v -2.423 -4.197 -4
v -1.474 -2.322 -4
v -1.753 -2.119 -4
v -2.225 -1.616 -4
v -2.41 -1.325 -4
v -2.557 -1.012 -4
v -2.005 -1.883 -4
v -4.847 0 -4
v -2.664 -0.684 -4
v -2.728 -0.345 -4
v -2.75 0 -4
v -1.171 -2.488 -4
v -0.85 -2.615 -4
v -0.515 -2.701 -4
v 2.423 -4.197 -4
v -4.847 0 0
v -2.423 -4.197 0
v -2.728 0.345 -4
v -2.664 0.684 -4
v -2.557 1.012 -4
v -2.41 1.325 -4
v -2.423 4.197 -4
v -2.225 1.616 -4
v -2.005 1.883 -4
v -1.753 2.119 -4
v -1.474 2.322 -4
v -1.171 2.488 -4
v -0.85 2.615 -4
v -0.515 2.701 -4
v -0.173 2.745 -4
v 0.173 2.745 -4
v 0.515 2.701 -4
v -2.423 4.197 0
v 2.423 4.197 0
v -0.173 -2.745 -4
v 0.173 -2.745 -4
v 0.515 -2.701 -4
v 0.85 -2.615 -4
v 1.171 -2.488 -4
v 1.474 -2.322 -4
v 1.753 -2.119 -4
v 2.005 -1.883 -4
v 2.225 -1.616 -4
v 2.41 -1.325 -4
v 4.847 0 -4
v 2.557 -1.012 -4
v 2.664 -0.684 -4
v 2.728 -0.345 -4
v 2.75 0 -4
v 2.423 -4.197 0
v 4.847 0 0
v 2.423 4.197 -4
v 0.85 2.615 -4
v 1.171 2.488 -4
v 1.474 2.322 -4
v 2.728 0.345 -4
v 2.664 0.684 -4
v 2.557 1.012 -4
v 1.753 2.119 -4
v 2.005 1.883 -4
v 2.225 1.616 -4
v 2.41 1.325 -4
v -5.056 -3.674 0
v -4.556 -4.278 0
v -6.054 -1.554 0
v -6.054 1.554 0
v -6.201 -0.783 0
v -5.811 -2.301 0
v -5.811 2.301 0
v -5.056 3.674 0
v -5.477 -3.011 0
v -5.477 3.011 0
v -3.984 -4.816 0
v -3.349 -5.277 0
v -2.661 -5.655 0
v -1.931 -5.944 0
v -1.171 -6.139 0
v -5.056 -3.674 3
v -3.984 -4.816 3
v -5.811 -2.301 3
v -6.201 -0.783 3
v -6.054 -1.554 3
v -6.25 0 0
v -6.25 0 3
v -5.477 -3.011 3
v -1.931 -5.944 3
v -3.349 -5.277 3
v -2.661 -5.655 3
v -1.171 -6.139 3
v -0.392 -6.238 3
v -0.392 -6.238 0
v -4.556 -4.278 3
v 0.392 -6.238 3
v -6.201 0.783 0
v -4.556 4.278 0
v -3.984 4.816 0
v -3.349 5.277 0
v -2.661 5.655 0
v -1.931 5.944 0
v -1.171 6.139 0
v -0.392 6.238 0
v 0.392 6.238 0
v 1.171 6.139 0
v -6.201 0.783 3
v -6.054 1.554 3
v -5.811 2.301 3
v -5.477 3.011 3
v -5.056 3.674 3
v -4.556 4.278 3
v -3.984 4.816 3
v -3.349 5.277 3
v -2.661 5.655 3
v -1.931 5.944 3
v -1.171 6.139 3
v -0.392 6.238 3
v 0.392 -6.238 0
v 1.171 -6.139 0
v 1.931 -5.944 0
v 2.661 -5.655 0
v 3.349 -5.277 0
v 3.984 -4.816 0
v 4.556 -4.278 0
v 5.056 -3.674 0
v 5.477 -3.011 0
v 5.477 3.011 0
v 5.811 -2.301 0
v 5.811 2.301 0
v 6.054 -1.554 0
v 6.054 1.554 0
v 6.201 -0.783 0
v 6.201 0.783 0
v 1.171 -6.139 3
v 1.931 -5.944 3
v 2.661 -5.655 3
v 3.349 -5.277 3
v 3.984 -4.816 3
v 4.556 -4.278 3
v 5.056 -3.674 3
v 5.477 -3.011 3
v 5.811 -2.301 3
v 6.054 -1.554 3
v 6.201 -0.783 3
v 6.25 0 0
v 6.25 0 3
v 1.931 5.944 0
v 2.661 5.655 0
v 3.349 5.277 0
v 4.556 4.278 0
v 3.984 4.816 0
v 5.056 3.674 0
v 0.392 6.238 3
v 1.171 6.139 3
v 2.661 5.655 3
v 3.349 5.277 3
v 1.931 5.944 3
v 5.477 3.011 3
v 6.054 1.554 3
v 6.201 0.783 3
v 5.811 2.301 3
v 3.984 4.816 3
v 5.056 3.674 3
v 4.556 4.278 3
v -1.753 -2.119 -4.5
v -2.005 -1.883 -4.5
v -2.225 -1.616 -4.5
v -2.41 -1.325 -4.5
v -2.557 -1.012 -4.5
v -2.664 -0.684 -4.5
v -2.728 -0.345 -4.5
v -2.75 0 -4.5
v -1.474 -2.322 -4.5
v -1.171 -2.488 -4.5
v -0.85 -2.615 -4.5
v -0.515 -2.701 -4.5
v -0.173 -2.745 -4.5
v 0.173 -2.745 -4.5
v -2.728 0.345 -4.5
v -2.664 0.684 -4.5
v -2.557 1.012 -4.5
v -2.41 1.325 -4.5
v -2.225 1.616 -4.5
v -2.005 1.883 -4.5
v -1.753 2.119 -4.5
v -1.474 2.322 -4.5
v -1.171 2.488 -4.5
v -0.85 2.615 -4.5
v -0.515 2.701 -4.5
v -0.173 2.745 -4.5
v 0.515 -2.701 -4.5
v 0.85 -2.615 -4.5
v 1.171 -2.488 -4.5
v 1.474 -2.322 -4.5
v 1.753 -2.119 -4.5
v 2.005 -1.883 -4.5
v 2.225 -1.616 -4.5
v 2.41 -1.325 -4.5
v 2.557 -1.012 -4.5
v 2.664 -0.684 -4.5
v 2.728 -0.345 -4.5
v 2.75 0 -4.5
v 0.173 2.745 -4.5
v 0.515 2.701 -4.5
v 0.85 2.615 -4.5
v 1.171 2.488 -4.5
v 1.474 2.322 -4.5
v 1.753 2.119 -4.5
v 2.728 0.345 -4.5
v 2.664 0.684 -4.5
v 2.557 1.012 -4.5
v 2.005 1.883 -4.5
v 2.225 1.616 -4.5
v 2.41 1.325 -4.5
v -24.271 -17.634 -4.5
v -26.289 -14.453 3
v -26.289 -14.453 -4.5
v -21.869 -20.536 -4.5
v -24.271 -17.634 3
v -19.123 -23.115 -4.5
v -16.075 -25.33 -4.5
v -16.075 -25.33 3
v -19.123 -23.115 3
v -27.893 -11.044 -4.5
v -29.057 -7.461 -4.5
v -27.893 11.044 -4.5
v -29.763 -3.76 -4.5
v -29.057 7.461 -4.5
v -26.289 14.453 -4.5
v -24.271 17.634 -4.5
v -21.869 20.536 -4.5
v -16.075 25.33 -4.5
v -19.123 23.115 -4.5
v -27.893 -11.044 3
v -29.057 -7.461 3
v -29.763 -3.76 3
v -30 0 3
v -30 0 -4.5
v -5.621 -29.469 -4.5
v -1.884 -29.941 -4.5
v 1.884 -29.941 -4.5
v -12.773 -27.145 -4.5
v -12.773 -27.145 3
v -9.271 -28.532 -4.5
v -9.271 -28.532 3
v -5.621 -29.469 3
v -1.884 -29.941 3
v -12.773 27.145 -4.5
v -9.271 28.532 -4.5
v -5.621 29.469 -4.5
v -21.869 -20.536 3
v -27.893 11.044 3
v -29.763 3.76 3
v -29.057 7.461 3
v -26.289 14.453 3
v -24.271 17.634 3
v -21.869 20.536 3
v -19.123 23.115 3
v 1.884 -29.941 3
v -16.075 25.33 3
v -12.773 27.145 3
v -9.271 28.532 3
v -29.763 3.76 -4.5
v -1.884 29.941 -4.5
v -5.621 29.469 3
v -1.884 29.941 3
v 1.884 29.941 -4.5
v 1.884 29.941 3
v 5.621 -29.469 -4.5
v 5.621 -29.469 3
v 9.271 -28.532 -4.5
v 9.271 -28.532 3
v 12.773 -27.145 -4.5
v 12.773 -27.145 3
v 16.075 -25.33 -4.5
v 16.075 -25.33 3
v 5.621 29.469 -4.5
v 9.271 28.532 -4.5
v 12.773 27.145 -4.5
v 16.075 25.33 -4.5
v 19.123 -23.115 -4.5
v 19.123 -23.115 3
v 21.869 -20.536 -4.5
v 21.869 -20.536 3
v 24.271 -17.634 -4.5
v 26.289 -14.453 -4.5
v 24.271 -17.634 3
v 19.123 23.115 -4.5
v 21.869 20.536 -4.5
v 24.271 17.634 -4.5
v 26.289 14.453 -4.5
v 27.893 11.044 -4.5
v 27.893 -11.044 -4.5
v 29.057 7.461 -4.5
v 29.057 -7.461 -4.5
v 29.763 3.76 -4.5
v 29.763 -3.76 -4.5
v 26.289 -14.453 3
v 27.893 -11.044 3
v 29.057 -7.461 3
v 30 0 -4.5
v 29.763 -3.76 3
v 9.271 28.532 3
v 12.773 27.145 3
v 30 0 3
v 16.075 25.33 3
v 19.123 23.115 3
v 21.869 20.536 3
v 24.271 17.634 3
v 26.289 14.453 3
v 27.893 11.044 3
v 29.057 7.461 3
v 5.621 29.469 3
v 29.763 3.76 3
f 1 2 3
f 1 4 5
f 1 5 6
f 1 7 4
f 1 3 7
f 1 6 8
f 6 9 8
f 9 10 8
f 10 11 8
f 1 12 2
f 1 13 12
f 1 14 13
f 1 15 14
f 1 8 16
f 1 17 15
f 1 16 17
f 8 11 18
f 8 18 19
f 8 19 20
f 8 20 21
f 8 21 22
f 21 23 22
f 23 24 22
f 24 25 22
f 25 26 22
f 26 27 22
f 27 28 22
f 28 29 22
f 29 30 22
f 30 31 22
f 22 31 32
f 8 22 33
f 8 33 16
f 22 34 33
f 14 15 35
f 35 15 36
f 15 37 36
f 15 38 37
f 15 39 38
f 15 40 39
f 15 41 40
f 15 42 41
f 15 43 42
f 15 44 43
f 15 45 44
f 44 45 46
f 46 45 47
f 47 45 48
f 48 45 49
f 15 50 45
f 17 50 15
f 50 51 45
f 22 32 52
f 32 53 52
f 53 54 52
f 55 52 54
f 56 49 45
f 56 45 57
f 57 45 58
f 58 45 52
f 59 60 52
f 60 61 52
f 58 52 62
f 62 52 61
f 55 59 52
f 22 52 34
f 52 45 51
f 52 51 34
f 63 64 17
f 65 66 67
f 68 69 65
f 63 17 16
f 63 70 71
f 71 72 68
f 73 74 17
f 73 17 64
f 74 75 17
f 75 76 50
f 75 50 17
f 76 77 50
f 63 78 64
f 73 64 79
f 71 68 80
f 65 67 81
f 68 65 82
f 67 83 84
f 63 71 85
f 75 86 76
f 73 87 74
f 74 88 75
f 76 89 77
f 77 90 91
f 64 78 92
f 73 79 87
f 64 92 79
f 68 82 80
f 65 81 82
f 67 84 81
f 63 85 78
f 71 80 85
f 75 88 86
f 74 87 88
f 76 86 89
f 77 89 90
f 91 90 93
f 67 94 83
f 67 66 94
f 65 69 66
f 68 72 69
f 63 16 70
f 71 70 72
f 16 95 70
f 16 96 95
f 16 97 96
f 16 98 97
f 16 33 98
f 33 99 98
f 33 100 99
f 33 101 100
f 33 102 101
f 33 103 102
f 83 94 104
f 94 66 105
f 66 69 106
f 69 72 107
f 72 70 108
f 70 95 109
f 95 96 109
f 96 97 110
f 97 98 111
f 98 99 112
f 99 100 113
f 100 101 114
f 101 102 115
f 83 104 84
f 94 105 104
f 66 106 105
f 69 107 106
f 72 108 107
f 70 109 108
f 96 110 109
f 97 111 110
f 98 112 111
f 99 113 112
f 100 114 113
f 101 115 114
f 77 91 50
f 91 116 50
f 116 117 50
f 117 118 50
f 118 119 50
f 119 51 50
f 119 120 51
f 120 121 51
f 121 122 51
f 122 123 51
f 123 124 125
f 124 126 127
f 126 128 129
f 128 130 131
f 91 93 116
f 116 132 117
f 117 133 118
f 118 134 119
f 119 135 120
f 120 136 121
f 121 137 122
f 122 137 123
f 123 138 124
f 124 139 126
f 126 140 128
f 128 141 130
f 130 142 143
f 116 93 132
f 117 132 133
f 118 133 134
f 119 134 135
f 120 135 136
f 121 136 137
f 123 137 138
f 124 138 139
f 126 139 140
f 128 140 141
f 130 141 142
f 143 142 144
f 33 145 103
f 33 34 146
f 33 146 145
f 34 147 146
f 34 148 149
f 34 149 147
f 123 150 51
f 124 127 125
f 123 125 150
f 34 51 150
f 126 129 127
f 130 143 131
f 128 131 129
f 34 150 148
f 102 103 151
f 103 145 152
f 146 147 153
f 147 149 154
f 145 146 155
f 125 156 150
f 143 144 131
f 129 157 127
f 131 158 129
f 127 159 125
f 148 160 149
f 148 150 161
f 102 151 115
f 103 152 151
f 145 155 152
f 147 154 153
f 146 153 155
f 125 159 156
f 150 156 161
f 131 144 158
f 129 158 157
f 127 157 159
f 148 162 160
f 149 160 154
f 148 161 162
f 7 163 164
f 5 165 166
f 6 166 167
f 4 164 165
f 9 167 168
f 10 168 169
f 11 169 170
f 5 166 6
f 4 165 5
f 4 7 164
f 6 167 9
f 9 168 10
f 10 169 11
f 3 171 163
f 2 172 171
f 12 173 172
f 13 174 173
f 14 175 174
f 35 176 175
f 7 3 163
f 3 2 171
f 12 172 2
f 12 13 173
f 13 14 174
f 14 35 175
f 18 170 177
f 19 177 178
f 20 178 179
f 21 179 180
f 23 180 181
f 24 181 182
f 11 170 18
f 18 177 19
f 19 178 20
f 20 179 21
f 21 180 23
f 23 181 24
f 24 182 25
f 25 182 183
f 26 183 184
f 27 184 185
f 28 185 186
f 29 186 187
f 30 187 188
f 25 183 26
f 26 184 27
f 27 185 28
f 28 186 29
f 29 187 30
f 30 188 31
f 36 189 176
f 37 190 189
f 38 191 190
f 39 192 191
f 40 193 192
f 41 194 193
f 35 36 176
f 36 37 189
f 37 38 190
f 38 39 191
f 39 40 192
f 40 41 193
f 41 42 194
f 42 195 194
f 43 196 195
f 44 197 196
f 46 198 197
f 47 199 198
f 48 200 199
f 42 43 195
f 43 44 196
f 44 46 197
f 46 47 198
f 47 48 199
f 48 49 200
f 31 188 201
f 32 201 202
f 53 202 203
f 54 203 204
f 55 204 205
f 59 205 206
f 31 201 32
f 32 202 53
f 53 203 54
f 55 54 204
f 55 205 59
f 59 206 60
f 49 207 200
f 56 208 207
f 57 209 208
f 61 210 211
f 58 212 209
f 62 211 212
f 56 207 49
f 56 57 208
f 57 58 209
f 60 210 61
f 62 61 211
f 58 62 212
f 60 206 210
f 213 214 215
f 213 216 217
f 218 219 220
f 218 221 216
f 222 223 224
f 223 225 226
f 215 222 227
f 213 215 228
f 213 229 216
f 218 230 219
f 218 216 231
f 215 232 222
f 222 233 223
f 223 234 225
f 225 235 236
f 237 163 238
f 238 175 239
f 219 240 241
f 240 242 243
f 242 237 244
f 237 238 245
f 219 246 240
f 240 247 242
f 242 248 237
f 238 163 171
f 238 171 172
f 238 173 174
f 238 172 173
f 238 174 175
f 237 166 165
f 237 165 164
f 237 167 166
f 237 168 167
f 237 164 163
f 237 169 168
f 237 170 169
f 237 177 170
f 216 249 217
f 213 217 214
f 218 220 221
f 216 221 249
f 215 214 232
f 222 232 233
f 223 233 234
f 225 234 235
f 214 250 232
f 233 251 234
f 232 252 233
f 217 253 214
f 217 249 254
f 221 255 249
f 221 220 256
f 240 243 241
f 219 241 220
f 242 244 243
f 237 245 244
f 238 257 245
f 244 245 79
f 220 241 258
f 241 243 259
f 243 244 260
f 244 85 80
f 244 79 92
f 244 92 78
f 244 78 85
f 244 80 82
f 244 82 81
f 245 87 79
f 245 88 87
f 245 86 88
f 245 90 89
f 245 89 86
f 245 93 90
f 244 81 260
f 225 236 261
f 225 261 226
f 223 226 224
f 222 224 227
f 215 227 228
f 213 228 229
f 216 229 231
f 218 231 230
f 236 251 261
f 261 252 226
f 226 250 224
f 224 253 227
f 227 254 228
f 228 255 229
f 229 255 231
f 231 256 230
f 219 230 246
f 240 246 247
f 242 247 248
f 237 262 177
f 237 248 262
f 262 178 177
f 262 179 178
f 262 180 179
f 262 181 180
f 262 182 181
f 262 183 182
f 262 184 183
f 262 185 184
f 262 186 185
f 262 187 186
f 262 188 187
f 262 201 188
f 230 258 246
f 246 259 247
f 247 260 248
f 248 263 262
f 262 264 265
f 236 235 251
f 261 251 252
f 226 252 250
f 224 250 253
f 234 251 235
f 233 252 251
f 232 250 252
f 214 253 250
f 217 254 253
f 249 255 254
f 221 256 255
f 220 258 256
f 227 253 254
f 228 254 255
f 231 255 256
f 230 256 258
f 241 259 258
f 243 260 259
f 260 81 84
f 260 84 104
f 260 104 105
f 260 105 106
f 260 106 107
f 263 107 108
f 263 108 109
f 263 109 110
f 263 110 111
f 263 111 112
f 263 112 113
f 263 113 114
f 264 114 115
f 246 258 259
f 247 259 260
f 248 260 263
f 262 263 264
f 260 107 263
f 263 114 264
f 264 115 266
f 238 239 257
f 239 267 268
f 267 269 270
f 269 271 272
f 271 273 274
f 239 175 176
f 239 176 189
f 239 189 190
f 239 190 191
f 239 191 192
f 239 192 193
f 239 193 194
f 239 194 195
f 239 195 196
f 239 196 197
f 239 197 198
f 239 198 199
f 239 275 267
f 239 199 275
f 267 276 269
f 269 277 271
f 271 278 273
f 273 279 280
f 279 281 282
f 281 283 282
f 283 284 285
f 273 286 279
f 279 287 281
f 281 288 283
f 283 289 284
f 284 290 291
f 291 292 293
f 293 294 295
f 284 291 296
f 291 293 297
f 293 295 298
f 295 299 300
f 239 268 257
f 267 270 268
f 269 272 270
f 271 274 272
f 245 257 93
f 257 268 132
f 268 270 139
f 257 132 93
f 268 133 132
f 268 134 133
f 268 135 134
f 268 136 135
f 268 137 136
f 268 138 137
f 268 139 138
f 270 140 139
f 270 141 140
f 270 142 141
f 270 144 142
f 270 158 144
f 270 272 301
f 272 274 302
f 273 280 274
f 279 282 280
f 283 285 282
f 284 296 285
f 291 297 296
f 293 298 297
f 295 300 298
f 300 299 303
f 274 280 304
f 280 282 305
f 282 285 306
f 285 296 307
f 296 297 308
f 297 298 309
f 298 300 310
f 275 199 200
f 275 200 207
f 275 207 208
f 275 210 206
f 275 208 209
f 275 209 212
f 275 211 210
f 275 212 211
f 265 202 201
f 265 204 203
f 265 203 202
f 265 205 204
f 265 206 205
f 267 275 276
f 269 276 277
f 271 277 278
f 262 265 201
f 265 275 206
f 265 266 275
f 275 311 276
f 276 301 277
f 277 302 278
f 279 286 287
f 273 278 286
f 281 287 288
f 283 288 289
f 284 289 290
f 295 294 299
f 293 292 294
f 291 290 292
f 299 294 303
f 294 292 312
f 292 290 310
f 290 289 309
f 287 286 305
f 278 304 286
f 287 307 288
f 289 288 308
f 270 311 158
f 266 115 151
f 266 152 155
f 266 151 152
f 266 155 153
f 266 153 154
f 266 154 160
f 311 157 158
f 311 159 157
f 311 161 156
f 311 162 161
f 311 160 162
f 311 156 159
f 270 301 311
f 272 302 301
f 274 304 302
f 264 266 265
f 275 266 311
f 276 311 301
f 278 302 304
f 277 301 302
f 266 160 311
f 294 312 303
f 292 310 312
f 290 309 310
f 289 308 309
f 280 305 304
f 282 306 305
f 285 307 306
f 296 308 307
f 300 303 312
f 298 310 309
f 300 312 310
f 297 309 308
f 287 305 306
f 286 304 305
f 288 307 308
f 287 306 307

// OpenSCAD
$fn = 50;

difference() {
	union() {
		translate(v = [0, 0, -4.5]) {
			cylinder(h = 7.5, r = 30.0);
		}
	}
	union() {
		translate(v = [0, 0, 0]) {
			rotate(a = [0, 0, 0]) {
				difference() {
					union() {
						translate(v = [0, 0, -4]) {
							linear_extrude(height = 4) {
								polygon(points = [[4.8468, 0.0], [2.4234000000000004, 4.197451927062417], [-2.423399999999999, 4.197451927062417], [-4.8468, 5.935618106107392e-16], [-2.423400000000002, -4.197451927062416], [2.423399999999997, -4.197451927062419]]);
							}
						}
					}
					union();
				}
			}
		}
		#cylinder(h = 3, r = 6.25);
		#translate(v = [0, 0, -100.0]) {
			cylinder(h = 200, r = 2.75);
		}
	}
}
